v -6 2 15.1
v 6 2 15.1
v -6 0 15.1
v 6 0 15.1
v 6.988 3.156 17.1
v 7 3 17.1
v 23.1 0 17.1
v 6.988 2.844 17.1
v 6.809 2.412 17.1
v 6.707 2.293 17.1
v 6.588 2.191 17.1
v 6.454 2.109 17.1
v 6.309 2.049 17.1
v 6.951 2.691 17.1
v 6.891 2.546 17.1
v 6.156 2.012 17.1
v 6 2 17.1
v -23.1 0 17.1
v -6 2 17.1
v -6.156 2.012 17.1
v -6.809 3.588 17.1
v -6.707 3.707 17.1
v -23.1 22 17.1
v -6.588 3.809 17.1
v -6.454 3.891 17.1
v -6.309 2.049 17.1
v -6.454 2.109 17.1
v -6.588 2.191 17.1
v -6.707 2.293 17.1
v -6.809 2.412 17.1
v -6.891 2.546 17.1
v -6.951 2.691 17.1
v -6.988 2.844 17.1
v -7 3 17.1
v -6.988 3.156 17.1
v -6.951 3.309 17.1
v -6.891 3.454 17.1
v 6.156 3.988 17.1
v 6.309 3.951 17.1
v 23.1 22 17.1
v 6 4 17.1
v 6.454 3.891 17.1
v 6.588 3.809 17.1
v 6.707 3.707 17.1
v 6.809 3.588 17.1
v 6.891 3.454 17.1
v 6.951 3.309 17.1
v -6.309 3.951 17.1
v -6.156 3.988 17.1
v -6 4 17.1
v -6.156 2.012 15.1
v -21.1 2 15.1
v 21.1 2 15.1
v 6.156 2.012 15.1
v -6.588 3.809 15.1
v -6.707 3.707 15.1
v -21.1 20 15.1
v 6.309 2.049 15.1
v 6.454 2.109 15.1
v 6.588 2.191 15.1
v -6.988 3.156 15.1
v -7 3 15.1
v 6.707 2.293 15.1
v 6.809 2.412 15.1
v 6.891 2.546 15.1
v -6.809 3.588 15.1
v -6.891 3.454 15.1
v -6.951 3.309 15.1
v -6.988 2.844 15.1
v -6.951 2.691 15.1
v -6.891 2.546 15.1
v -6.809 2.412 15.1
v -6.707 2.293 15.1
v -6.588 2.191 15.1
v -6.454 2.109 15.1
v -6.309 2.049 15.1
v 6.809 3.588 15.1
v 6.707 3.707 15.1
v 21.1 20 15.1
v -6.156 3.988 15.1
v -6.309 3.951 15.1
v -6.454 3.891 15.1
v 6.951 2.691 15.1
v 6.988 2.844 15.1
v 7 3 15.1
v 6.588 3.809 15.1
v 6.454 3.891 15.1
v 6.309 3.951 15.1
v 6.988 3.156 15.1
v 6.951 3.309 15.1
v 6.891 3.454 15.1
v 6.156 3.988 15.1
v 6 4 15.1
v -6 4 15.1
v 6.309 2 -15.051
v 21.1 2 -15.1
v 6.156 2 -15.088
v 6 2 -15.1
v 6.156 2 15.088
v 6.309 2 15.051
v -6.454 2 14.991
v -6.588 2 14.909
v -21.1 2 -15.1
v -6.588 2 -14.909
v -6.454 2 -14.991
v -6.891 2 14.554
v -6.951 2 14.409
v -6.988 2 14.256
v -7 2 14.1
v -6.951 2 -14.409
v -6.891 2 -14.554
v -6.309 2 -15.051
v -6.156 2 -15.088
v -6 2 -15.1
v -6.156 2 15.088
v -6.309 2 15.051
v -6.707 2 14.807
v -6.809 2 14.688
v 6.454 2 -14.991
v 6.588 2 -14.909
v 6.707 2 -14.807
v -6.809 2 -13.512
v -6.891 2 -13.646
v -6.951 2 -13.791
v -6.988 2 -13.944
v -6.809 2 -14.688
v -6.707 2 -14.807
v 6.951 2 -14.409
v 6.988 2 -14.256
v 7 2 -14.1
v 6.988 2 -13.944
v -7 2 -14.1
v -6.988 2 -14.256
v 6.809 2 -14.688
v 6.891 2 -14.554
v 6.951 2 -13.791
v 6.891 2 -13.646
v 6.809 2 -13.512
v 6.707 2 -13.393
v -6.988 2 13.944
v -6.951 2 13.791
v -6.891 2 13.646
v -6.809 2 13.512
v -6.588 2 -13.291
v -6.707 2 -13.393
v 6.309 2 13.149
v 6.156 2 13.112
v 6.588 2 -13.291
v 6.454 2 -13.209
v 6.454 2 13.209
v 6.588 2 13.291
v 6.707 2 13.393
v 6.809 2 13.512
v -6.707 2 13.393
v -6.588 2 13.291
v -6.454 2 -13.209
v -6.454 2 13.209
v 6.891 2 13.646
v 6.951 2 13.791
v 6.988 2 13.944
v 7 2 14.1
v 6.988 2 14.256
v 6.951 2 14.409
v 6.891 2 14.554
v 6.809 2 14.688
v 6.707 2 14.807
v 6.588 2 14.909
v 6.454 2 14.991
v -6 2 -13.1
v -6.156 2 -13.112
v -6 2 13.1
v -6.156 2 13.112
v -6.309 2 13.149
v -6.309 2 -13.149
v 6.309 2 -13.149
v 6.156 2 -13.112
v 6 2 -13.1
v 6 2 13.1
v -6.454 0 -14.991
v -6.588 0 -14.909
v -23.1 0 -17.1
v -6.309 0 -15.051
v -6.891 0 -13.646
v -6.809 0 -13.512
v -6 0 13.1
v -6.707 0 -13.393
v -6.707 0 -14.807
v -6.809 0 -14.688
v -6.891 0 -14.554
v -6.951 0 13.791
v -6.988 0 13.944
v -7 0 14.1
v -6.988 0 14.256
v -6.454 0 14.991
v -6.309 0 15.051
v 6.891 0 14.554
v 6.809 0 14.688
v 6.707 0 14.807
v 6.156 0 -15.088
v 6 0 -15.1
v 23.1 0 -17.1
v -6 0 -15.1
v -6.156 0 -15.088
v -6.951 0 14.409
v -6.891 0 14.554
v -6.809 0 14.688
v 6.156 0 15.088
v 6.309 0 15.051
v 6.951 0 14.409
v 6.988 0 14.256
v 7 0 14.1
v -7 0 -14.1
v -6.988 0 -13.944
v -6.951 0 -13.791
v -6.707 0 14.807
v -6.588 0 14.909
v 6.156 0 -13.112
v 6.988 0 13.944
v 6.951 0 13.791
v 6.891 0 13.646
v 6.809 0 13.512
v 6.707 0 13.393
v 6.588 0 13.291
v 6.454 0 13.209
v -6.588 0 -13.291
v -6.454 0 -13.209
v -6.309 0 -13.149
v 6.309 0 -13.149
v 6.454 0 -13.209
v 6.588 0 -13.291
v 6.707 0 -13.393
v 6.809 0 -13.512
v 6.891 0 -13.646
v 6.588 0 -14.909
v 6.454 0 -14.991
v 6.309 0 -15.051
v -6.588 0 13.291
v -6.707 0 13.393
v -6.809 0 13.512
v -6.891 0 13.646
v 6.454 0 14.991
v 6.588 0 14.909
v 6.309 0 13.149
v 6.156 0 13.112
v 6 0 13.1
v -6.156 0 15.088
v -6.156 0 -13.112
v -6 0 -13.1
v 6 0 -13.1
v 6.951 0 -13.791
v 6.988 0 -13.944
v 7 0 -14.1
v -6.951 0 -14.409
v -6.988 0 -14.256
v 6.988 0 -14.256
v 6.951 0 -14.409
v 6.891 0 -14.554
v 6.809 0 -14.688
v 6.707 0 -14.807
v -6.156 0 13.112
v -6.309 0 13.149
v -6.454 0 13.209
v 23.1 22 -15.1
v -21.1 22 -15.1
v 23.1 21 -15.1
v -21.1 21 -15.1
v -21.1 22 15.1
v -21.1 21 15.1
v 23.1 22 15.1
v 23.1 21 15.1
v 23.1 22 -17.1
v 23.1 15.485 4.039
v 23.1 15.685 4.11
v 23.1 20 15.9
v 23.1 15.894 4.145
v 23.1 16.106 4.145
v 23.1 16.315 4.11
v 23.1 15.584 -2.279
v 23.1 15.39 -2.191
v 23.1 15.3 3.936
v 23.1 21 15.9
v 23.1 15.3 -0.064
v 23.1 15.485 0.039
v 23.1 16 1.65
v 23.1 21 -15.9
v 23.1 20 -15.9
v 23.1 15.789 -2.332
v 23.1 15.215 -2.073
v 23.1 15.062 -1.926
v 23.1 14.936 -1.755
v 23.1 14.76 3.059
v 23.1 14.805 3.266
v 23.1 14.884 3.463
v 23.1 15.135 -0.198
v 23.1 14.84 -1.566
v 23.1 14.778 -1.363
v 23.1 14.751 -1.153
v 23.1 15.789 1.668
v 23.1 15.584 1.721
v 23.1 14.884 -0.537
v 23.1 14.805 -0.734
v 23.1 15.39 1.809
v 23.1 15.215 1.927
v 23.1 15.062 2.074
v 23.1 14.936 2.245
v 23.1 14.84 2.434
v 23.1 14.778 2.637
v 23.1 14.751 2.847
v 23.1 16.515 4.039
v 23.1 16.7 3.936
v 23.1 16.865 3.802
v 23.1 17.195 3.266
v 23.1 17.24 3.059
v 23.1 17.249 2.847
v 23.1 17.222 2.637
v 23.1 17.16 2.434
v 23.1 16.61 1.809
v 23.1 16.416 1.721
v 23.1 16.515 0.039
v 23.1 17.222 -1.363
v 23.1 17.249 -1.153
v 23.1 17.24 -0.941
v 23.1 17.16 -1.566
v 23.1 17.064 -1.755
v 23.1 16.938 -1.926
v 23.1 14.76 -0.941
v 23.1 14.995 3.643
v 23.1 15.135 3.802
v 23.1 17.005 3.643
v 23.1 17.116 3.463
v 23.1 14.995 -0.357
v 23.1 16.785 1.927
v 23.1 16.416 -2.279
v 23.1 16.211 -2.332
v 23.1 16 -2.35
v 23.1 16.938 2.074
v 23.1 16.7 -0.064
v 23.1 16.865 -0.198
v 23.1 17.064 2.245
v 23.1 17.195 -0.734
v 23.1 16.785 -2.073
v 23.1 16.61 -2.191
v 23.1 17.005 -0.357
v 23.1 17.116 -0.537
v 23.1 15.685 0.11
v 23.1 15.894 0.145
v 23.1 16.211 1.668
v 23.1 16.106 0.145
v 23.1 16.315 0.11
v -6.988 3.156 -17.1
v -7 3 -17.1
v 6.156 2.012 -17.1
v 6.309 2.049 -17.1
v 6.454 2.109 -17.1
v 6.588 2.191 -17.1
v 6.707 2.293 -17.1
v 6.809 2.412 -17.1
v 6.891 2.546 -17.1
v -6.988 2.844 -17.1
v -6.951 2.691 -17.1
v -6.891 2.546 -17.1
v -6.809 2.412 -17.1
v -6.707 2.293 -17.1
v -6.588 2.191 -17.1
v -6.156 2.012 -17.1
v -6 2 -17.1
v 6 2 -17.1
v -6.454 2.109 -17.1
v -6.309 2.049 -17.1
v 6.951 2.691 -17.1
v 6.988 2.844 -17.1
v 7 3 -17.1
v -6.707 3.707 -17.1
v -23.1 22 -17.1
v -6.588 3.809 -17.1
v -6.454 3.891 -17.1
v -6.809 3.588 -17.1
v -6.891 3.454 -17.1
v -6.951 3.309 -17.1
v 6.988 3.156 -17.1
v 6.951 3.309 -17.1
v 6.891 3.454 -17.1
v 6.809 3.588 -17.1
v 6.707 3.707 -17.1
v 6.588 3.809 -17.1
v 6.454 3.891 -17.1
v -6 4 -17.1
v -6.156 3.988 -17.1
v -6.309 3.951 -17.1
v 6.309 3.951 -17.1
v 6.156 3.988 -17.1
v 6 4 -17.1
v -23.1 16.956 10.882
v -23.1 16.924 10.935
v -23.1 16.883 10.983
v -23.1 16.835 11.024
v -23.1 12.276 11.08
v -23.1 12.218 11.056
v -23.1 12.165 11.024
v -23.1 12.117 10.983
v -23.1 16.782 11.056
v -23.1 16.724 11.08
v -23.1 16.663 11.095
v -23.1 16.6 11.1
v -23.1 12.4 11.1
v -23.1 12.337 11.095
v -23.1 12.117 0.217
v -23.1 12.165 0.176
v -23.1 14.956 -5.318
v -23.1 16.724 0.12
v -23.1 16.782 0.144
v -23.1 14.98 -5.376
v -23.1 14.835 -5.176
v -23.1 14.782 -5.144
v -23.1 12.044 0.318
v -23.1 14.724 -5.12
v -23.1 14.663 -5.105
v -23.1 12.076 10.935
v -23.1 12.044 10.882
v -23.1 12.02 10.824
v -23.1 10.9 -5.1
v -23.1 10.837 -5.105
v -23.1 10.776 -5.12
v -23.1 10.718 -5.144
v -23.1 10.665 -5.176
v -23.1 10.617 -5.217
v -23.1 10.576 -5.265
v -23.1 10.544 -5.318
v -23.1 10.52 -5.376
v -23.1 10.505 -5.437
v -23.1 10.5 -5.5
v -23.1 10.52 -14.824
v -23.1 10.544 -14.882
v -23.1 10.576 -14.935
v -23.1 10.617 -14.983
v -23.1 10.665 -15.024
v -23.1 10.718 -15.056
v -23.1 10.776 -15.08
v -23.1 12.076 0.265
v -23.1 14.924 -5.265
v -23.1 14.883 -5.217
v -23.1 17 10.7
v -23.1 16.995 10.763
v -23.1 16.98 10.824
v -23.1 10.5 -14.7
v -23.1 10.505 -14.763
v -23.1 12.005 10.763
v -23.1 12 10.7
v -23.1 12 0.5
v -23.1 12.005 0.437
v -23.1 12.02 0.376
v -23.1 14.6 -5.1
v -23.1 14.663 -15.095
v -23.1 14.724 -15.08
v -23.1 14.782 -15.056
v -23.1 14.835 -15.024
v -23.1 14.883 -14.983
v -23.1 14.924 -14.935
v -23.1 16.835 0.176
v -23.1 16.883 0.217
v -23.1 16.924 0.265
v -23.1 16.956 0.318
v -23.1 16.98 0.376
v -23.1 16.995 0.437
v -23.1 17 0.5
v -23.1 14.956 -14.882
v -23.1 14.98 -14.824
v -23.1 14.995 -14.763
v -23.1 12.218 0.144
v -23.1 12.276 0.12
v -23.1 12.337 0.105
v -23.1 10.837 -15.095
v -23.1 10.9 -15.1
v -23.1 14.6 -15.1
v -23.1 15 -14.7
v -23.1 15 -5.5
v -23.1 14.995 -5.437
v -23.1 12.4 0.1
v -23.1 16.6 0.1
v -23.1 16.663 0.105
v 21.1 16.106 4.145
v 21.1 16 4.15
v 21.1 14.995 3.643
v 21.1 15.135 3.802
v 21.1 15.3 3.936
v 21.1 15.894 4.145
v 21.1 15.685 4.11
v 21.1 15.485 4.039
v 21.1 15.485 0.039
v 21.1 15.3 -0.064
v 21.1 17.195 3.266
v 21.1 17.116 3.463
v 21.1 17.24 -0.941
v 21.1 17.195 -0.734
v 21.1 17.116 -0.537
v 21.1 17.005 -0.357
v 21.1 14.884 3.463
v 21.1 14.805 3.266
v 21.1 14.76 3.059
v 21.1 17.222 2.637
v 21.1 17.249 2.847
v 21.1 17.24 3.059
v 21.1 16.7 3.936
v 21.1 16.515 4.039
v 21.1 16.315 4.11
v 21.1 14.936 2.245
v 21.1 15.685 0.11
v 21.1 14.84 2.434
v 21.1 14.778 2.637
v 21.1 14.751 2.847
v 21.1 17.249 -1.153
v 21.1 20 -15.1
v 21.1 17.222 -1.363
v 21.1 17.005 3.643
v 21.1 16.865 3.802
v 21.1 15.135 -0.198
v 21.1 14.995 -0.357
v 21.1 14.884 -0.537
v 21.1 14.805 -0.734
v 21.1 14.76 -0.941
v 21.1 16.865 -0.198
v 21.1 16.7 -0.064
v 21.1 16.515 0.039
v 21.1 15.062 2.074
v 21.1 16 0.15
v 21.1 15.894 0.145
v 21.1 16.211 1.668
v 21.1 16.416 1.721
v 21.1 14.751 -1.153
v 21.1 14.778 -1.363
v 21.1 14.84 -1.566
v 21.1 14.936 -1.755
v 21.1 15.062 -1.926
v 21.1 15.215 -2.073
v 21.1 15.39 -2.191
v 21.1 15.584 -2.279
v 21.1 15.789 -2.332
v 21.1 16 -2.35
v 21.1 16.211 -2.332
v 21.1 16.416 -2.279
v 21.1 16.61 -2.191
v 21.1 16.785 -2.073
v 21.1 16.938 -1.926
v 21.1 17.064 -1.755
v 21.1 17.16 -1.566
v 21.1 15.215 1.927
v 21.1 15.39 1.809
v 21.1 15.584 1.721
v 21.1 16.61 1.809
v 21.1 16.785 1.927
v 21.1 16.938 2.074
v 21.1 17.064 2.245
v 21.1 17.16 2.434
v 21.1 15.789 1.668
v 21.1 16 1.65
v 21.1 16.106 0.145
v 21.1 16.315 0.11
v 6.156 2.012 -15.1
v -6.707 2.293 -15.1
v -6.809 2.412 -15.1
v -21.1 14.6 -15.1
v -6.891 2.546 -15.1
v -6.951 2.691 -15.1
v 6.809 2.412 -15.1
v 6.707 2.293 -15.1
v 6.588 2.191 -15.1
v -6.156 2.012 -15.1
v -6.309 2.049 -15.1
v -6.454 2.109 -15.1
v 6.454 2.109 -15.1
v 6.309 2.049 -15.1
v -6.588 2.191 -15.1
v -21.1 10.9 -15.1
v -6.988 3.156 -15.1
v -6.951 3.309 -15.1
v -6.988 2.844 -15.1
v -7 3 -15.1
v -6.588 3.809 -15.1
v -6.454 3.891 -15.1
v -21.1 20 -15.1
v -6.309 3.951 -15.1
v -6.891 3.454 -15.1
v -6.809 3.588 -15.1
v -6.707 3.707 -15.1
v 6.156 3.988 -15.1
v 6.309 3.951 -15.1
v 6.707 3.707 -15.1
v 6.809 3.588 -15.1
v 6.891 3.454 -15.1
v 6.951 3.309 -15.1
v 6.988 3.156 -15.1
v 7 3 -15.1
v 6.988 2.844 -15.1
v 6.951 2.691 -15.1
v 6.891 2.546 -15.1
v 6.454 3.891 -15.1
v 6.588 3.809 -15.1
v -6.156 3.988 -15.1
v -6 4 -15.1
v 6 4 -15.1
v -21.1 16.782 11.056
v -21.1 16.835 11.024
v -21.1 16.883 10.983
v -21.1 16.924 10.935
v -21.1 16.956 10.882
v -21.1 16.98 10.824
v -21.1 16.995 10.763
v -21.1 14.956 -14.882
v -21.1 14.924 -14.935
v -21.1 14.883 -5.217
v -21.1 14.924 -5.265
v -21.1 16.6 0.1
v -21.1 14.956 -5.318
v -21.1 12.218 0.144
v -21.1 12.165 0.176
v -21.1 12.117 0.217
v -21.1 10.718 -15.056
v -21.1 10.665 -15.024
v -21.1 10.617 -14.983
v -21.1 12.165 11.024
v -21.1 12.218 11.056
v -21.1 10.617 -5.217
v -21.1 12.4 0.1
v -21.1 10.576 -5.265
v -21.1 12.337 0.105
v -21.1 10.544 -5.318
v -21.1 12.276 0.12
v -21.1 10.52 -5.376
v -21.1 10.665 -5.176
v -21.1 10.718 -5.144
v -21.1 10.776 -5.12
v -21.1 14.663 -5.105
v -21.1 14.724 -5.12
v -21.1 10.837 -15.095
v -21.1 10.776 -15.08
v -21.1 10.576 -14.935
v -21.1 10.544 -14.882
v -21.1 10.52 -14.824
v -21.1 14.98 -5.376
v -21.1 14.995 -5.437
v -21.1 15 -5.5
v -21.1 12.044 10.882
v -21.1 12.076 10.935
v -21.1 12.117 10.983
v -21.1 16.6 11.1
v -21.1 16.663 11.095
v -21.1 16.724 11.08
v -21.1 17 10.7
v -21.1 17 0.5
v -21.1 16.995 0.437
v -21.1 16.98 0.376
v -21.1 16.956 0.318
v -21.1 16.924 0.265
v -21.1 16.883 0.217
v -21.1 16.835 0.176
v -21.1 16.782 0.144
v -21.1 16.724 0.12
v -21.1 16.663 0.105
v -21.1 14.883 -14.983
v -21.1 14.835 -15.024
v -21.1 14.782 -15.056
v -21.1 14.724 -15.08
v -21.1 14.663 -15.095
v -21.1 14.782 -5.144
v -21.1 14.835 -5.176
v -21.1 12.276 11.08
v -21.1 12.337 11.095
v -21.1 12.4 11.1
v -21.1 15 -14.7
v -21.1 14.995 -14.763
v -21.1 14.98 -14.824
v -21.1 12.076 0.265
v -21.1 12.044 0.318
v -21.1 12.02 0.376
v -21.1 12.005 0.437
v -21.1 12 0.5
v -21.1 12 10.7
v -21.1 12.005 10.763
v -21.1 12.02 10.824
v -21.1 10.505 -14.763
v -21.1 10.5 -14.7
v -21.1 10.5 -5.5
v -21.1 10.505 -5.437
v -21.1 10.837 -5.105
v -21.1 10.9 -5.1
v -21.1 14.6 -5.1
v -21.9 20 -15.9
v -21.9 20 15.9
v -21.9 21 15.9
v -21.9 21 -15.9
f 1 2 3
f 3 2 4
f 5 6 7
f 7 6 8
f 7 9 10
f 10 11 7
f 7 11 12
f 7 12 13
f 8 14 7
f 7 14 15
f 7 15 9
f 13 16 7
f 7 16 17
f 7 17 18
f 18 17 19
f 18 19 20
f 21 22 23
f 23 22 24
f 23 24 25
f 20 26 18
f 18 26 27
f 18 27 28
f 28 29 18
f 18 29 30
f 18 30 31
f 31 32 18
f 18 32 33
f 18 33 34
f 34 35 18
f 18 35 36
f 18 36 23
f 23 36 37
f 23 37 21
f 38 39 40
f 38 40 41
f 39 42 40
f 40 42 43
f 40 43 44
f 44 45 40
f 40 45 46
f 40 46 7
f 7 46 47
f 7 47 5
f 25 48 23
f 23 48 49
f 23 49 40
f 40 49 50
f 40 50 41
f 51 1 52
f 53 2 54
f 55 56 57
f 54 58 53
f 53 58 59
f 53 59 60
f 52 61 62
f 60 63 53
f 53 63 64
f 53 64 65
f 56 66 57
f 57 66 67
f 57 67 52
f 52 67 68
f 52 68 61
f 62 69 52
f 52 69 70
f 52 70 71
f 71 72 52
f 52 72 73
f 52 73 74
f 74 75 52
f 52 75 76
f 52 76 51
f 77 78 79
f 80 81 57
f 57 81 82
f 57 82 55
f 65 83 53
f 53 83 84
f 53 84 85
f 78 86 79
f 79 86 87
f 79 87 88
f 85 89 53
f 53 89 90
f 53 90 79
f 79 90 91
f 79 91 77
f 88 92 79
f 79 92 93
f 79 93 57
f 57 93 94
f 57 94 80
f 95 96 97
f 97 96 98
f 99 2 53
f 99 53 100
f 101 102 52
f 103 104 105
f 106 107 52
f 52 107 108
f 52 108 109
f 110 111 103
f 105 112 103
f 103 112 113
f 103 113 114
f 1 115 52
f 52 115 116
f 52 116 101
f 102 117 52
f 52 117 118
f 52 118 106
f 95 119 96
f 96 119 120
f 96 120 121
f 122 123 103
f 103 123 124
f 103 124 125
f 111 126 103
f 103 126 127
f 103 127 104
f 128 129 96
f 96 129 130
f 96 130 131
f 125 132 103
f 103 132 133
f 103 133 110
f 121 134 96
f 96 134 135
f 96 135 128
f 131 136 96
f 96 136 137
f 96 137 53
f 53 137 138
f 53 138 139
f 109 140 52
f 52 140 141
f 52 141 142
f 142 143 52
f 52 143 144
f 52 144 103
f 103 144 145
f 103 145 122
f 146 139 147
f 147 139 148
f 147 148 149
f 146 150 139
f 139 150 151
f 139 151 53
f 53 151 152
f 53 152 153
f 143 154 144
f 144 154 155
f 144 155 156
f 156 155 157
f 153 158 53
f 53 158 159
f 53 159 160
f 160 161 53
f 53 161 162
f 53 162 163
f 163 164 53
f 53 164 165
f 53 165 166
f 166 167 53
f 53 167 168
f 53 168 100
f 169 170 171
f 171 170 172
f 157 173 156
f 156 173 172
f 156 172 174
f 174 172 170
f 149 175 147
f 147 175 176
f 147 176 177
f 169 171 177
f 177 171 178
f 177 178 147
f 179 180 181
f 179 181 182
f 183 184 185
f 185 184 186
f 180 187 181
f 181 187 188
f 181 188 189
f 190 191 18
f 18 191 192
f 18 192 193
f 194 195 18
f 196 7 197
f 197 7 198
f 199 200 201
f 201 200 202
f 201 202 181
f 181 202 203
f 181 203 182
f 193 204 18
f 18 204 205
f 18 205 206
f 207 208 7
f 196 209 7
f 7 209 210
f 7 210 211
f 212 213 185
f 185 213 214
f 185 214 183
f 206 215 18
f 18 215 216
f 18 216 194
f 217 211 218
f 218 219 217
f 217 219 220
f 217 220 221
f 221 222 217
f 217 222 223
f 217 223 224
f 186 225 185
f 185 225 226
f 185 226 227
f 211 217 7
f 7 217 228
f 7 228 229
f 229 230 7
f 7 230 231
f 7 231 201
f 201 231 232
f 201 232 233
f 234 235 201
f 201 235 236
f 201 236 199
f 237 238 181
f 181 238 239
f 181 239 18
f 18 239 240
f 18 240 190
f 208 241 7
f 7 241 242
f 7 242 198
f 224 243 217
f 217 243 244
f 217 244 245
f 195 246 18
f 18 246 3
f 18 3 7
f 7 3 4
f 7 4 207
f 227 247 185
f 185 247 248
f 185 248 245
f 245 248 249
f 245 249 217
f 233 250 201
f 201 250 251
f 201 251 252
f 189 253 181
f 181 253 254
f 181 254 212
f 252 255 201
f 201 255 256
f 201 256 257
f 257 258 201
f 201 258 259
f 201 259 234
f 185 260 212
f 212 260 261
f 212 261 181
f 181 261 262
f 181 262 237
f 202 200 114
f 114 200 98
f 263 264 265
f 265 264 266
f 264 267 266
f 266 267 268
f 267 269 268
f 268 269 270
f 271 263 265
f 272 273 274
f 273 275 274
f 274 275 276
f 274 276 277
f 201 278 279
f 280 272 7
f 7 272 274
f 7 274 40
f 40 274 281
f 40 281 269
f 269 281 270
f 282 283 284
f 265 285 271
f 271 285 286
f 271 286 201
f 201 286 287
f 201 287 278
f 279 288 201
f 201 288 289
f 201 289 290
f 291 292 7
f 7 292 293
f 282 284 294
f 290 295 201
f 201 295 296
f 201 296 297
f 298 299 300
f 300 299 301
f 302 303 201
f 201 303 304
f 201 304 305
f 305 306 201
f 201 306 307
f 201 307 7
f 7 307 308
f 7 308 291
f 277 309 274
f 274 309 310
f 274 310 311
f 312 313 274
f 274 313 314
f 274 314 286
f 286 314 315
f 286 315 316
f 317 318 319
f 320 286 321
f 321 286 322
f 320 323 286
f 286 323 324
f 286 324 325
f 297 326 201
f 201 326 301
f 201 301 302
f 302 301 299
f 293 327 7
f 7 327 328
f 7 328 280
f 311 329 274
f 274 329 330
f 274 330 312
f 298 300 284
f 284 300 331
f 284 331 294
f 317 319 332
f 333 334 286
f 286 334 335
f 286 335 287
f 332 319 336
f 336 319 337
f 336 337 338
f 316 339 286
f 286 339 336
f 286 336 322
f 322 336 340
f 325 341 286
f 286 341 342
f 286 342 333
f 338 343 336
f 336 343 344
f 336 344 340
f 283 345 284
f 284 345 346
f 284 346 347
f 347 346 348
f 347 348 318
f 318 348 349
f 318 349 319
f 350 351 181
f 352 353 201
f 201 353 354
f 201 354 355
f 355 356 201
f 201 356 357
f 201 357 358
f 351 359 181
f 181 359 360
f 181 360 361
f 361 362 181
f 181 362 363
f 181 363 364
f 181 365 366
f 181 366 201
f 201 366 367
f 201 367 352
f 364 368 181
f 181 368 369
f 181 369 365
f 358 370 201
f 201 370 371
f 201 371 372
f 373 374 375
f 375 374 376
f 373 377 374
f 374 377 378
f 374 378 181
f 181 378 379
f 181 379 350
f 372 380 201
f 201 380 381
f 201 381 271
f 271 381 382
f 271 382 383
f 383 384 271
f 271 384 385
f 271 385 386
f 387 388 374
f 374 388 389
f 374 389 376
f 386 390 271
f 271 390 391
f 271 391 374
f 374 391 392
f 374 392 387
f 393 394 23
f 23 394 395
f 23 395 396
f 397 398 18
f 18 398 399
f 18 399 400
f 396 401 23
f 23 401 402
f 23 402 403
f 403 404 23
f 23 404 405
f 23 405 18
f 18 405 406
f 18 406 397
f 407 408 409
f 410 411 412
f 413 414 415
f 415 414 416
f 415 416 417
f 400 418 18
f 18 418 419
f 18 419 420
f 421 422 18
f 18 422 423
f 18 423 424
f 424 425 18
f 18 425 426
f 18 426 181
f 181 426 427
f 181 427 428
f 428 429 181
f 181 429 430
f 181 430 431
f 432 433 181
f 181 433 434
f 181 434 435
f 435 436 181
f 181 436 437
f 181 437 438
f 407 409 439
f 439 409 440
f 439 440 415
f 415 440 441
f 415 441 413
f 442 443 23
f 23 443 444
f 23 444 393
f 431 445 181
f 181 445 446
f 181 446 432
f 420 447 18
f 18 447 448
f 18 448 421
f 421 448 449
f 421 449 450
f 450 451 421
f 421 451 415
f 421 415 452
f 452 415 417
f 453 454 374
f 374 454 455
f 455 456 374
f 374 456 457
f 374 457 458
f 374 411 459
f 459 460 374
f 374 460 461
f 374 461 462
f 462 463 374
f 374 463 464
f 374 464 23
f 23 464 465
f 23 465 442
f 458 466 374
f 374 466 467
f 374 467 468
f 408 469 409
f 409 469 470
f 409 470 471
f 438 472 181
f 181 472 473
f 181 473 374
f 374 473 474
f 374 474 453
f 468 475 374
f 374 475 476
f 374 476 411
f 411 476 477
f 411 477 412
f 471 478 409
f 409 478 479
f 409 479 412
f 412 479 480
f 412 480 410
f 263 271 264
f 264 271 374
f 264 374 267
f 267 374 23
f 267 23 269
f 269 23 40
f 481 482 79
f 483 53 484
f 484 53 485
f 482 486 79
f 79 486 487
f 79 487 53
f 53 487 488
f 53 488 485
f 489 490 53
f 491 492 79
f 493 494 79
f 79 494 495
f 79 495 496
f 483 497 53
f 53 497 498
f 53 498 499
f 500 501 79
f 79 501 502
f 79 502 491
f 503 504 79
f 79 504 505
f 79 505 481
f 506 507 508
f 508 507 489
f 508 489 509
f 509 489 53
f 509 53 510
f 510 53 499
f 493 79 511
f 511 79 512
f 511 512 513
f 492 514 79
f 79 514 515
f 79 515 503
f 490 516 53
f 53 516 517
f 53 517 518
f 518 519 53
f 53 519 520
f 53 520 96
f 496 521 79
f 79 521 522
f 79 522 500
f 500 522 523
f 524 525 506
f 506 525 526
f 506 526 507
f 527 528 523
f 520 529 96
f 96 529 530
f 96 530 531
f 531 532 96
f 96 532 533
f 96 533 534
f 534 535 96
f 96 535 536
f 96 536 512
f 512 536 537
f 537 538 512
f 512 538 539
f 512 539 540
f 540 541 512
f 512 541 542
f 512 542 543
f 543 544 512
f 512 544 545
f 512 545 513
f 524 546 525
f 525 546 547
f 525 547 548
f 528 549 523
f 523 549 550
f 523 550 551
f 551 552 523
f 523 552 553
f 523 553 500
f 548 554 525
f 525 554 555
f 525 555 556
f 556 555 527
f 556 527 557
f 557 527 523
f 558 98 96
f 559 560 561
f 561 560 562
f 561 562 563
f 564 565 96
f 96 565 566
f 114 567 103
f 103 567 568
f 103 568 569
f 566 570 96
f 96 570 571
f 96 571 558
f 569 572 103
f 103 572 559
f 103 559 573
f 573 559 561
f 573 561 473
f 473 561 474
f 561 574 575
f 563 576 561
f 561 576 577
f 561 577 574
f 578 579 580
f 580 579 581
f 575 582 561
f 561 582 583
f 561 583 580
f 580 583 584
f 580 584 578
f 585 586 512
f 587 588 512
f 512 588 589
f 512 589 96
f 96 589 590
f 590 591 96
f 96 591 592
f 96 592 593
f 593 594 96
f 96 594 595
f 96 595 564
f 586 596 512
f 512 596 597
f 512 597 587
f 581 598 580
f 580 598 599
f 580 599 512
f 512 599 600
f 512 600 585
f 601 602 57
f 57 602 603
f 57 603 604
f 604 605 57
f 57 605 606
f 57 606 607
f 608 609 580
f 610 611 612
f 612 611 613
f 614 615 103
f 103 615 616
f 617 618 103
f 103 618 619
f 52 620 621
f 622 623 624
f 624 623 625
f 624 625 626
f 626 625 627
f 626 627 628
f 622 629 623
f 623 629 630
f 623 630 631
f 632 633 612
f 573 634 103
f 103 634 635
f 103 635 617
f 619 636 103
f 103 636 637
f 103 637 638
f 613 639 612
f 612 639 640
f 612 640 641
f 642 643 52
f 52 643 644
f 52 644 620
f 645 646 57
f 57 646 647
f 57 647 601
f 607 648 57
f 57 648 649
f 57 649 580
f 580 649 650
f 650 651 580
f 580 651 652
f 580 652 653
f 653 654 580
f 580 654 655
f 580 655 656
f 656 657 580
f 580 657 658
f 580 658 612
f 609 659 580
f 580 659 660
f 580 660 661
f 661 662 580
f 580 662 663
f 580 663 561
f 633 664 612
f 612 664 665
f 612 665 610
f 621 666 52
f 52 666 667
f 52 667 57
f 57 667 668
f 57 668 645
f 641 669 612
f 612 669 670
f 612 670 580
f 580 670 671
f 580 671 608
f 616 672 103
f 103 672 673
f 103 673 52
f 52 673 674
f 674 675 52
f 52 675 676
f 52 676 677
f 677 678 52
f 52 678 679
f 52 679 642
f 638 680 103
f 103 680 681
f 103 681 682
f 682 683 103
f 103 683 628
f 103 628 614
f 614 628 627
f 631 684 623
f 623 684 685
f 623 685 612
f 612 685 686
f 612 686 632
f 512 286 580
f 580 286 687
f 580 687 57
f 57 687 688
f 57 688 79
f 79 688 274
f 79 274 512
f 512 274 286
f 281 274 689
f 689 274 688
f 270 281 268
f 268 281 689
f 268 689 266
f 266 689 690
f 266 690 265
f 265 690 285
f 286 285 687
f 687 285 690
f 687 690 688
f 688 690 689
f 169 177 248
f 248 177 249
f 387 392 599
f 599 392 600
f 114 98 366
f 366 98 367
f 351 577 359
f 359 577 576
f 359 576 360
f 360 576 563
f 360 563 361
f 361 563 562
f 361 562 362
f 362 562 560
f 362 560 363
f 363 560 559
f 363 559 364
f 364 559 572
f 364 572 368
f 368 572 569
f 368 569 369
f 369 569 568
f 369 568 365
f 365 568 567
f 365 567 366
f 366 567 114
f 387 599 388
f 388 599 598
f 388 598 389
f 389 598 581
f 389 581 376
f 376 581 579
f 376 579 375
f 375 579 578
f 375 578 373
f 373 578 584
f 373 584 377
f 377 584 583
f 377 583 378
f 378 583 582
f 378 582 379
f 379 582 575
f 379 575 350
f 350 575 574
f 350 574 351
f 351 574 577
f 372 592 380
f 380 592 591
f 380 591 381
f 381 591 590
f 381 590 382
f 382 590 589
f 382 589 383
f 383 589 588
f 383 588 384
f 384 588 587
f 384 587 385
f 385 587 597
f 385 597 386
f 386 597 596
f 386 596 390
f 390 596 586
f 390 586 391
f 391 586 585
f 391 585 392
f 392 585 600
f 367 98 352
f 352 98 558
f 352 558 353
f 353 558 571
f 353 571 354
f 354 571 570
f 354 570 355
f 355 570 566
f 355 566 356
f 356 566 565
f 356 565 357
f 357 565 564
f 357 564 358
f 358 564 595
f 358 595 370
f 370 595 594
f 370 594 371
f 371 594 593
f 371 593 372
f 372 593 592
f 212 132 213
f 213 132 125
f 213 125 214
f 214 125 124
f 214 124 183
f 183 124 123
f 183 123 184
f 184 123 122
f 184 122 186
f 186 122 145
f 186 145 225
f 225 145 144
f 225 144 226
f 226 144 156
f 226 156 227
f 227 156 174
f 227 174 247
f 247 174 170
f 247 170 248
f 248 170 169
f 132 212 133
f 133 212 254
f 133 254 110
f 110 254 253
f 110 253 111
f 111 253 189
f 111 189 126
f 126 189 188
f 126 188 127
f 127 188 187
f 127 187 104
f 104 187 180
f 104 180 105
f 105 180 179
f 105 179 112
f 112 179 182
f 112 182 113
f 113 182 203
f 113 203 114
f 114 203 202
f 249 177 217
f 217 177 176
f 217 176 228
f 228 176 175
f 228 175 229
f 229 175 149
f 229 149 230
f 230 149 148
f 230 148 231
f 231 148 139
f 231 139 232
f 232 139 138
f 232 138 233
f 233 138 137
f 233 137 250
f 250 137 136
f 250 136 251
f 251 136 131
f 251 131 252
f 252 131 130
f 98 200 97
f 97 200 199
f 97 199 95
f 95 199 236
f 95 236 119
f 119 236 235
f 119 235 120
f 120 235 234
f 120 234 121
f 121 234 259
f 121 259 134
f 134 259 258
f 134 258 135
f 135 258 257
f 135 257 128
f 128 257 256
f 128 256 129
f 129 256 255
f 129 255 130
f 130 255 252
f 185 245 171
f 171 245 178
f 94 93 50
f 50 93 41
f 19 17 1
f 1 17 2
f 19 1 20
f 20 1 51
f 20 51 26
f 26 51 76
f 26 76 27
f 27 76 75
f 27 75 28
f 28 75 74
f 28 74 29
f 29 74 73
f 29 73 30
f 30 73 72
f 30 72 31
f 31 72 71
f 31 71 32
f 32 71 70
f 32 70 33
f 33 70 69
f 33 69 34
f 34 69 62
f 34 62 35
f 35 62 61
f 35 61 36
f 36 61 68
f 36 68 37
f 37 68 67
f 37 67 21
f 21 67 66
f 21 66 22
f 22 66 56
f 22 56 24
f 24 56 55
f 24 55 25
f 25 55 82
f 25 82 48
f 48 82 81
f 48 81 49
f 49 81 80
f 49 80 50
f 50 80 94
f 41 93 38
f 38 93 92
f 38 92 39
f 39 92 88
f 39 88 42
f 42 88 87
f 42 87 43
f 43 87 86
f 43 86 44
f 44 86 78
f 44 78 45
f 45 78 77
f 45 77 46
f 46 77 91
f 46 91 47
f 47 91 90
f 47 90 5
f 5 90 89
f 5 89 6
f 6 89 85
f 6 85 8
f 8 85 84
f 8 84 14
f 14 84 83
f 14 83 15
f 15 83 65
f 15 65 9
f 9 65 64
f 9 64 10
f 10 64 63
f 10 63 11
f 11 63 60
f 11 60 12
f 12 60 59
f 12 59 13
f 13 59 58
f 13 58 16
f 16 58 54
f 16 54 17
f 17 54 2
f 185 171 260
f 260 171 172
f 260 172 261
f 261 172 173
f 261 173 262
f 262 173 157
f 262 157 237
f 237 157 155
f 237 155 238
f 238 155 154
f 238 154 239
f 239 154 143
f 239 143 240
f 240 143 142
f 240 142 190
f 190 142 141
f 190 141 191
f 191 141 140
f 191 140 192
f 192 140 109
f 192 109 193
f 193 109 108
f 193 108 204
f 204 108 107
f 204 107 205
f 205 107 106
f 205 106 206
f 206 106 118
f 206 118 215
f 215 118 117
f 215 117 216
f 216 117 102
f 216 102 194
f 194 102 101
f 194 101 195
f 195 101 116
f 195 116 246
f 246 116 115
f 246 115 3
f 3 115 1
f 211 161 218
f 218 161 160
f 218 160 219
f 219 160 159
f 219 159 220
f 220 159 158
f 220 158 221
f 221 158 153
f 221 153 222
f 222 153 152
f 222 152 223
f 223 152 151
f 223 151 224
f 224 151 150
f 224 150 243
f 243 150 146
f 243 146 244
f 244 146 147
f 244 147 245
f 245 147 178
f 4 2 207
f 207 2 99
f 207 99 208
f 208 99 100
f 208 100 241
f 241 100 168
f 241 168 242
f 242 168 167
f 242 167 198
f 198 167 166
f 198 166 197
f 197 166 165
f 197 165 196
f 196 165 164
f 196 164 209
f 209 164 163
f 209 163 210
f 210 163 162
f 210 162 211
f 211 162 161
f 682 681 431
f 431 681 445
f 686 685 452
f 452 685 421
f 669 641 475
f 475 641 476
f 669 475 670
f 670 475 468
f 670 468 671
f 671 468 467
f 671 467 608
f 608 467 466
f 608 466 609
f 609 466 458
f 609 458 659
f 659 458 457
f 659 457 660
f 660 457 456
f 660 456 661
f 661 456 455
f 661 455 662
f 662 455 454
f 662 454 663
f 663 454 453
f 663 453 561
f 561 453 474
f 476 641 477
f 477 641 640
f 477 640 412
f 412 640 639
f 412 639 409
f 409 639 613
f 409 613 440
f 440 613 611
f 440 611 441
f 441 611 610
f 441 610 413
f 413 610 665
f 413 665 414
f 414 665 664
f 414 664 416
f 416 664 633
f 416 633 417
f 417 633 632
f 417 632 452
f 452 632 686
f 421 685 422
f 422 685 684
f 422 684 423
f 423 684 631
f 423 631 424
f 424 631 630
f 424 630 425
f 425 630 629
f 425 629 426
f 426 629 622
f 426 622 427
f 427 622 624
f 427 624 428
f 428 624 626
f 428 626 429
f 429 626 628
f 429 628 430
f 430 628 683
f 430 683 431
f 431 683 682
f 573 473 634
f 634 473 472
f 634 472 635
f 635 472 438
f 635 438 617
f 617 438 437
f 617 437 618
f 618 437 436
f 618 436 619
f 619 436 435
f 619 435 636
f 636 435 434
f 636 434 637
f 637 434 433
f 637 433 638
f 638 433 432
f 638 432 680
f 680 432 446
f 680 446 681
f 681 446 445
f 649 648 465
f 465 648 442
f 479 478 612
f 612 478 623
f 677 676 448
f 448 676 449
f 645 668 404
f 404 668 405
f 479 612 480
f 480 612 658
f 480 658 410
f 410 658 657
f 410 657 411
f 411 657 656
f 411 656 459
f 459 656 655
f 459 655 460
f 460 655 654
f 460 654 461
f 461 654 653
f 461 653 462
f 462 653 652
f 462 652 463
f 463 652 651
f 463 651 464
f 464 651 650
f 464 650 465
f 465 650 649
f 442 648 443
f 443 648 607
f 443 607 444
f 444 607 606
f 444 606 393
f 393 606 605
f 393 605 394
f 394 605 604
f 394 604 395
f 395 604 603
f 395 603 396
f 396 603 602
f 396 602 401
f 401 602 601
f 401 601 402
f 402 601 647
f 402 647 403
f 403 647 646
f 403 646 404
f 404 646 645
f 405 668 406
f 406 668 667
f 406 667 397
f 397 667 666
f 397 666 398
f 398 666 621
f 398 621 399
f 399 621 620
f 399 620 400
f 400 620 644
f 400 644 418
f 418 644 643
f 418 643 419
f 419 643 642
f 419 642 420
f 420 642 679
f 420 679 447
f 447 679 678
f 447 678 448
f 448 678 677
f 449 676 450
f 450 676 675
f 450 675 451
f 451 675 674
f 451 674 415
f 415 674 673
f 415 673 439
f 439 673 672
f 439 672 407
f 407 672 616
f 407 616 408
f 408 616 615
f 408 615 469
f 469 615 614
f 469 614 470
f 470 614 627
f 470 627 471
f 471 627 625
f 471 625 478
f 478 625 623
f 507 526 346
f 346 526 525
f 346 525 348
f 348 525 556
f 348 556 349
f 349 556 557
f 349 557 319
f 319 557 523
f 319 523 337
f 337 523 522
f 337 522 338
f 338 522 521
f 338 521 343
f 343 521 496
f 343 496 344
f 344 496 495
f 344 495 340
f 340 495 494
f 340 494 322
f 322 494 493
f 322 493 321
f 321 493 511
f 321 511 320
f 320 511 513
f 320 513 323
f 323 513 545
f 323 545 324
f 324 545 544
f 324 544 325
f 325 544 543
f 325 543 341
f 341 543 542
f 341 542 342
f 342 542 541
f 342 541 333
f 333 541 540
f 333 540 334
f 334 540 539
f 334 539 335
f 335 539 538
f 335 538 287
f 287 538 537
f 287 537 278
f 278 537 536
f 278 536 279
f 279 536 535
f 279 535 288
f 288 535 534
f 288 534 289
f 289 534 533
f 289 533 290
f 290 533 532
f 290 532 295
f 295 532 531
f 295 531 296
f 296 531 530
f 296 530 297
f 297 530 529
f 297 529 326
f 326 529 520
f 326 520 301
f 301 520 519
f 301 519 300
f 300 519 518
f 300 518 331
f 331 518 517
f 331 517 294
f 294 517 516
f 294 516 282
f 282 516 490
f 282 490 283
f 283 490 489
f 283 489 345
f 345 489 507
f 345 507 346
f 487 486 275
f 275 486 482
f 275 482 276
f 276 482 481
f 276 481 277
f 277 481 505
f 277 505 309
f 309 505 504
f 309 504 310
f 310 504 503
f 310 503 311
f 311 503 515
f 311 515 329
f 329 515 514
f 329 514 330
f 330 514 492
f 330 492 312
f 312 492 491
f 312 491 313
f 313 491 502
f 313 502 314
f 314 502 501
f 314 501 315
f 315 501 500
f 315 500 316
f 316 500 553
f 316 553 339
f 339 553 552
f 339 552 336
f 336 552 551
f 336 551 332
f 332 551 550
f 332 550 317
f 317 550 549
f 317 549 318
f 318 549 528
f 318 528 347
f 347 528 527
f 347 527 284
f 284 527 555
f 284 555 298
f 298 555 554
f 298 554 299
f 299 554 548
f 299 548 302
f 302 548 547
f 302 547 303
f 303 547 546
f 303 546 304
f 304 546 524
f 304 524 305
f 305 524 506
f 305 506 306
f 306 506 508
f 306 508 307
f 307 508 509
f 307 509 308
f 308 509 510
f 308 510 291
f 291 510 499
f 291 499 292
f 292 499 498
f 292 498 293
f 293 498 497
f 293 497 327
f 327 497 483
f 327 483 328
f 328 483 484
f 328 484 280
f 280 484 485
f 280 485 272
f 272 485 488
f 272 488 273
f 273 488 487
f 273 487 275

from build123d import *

# Parameters (mm, degrees)
SKETCH_1_W             = 46.2
SKETCH_1_H             = 34.2
EXTRUDE_1_DEPTH        = 22
SHELL_1_T              = -2
CUT_EXTRUDE_3_REACH    = 55.952
SKETCH_4_W             = 30.2
SKETCH_4_H             = 2
SKETCH_5_W             = 31.8
SKETCH_5_H             = 1
CUT_EXTRUDE_4_DEPTH    = 45
CUT_EXTRUDE_6_REACH    = 38.194
SKETCH_8_W             = 14
SKETCH_8_H             = 2
CUT_EXTRUDE_7_REACH    = 48.768
SKETCH_9_W             = 14
SKETCH_9_H             = 2
FILLET_3_R             = 1
FILLET_4_R             = 1
FILLET_3_OF_MIRROR_1_R = 1
FILLET_4_OF_MIRROR_1_R = 1
CUT_EXTRUDE_8_REACH    = 55.952
SKETCH_10_W            = 10
SKETCH_10_H            = 4.5
FILLET_6_R             = 0.4
CUT_EXTRUDE_9_REACH    = 55.952
SKETCH_11_W            = 11
SKETCH_11_H            = 5
FILLET_7_R             = 0.4
CUT_EXTRUDE_10_REACH   = 55.952
SKETCH_12_R            = 1.25


# Some blends are built 0.0001 mm under size
with BuildPart() as part:
    # 草图1 → 凸台-拉伸1 (new body)
    with BuildSketch(Plane(origin=(0, 0, 0), x_dir=(1, 0, 0), z_dir=(0, 1, 0))):
        Rectangle(SKETCH_1_W, SKETCH_1_H)
    extrude(amount=EXTRUDE_1_DEPTH)

    # 抽壳1
    shell_1_openings = [part.faces().sort_by_distance(p)[0] for p in [
        (0, 22, 0),
    ]]
    offset(amount=SHELL_1_T, openings=shell_1_openings, kind=Kind.INTERSECTION)

    # 草图4 → 切除-拉伸3 (cut, up to next)
    with BuildSketch(Plane(origin=(23.1, 0, 0), x_dir=(0, 0, -1), z_dir=(1, 0, 0)), mode=Mode.PRIVATE) as cut_extrude_3_sk1:
        with Locations((0, 21)):
            Rectangle(SKETCH_4_W, SKETCH_4_H)
    cut_extrude_3_tool1 = extrude(cut_extrude_3_sk1.sketch, amount=-CUT_EXTRUDE_3_REACH, mode=Mode.PRIVATE) & part.part
    add(cut_extrude_3_tool1.solids().sort_by_distance((23.1, 21, 0))[0], mode=Mode.SUBTRACT)

    # 草图5 → 切除-拉伸4 (cut)
    with BuildSketch(Plane(origin=(23.1, 0, 0), x_dir=(0, 0, -1), z_dir=(1, 0, 0))):
        with Locations((0, 20.5)):
            Rectangle(SKETCH_5_W, SKETCH_5_H)
    extrude(amount=-CUT_EXTRUDE_4_DEPTH, mode=Mode.SUBTRACT)

    # 草图8 → 切除-拉伸6 (cut, up to next)
    with BuildSketch(Plane.XZ, mode=Mode.PRIVATE) as cut_extrude_6_sk1:
        with Locations((0, -14.1)):
            Rectangle(SKETCH_8_W, SKETCH_8_H)
    cut_extrude_6_tool1 = extrude(cut_extrude_6_sk1.sketch, amount=-CUT_EXTRUDE_6_REACH, mode=Mode.PRIVATE) & part.part
    cut_extrude_6 = cut_extrude_6_tool1.solids().sort_by_distance((0, 0, -14.1))[0]
    add(cut_extrude_6, mode=Mode.SUBTRACT)

    # 草图9 → 切除-拉伸7 (cut, up to next)
    with BuildSketch(Plane(origin=(0, 0, -17.1), x_dir=(-1, 0, 0), z_dir=(0, 0, -1)), mode=Mode.PRIVATE) as cut_extrude_7_sk1:
        with Locations((0, 3)):
            Rectangle(SKETCH_9_W, SKETCH_9_H)
    cut_extrude_7_tool1 = extrude(cut_extrude_7_sk1.sketch, amount=-CUT_EXTRUDE_7_REACH, mode=Mode.PRIVATE) & part.part
    cut_extrude_7 = cut_extrude_7_tool1.solids().sort_by_distance((0, 3, -17.1))[0]
    add(cut_extrude_7, mode=Mode.SUBTRACT)

    # 圆角3
    # the kernel refuses this fillet: 1 mm, written as the material it adds along each edge
    with BuildSketch(Plane(origin=(-7, 4, -17.1), x_dir=(0, -1, 0), z_dir=(0, 0, 1)), Plane(origin=(-7, 2, -17.1), x_dir=(1, 0, 0), z_dir=(0, 0, 1)), Plane(origin=(7, 2, -17.1), x_dir=(0, 1, 0), z_dir=(0, 0, 1))) as fillet_3_piece_1:
        with BuildLine():
            CenterArc((FILLET_3_R, FILLET_3_R), FILLET_3_R, 180, 90)
            Line((0, FILLET_3_R), (0, 0))
            Line((0, 0), (FILLET_3_R, 0))
        make_face()
    extrude(amount=2)
    with BuildSketch(Plane(origin=(7, 4, -17.1), x_dir=(0, -1, 0), z_dir=(0, 0, 1))) as fillet_3_piece_2:
        with BuildLine():
            CenterArc((FILLET_3_R, -FILLET_3_R), FILLET_3_R, 90, 90)
            Line((0, -FILLET_3_R), (0, 0))
            Line((0, 0), (FILLET_3_R, 0))
        make_face()
    extrude(amount=2)

    # 圆角4
    fillet_4_edges = [part.edges().sort_by_distance(p)[0] for p in [
        (-7, 1, -15.1),
        (-7, 1, -13.1),
        (7, 1, -15.1),
        (7, 1, -13.1),
    ]]
    fillet(fillet_4_edges, radius=FILLET_4_R - 0.0001)  # a hair under: the kernel refuses the full size

    # 镜向1: 切除-拉伸6, 切除-拉伸7 across plane
    add(cut_extrude_6.mirror(Plane.XY), mode=Mode.SUBTRACT)
    add(cut_extrude_7.mirror(Plane.XY), mode=Mode.SUBTRACT)

    # 圆角3 of 镜向1
    # the kernel refuses this fillet: 1 mm, written as the material it adds along each edge
    with BuildSketch(Plane(origin=(-7, 4, 17.1), x_dir=(1, 0, 0), z_dir=(0, 0, -1)), Plane(origin=(-7, 2, 17.1), x_dir=(0, 1, 0), z_dir=(0, 0, -1)), Plane(origin=(7, 2, 17.1), x_dir=(-1, 0, 0), z_dir=(0, 0, -1))) as fillet_3_of_mirror_1_piece_1:
        with BuildLine():
            CenterArc((FILLET_3_OF_MIRROR_1_R, FILLET_3_OF_MIRROR_1_R), FILLET_3_OF_MIRROR_1_R, 180, 90)
            Line((0, FILLET_3_OF_MIRROR_1_R), (0, 0))
            Line((0, 0), (FILLET_3_OF_MIRROR_1_R, 0))
        make_face()
    extrude(amount=2)
    with BuildSketch(Plane(origin=(7, 4, 17.1), x_dir=(-1, 0, 0), z_dir=(0, 0, -1))) as fillet_3_of_mirror_1_piece_2:
        with BuildLine():
            CenterArc((FILLET_3_OF_MIRROR_1_R, -FILLET_3_OF_MIRROR_1_R), FILLET_3_OF_MIRROR_1_R, 90, 90)
            Line((0, -FILLET_3_OF_MIRROR_1_R), (0, 0))
            Line((0, 0), (FILLET_3_OF_MIRROR_1_R, 0))
        make_face()
    extrude(amount=2)

    # 圆角4 of 镜向1
    fillet_4_of_mirror_1_edges = [part.edges().sort_by_distance(p)[0] for p in [
        (-7, 1, 15.1),
        (-7, 1, 13.1),
        (7, 1, 15.1),
        (7, 1, 13.1),
    ]]
    fillet(fillet_4_of_mirror_1_edges, radius=FILLET_4_OF_MIRROR_1_R - 0.0001)  # a hair under: the kernel refuses the full size

    # 草图10 → 切除-拉伸8 (cut, up to next)
    with BuildSketch(Plane.ZY.offset(23.1), mode=Mode.PRIVATE) as cut_extrude_8_sk1:
        with Locations((-10.1, 12.75)):
            Rectangle(SKETCH_10_W, SKETCH_10_H)
    cut_extrude_8_tool1 = extrude(cut_extrude_8_sk1.sketch, amount=-CUT_EXTRUDE_8_REACH, mode=Mode.PRIVATE) & part.part
    add(cut_extrude_8_tool1.solids().sort_by_distance((-23.1, 12.75, -10.1))[0], mode=Mode.SUBTRACT)

    # 圆角6
    fillet_6_edges = [part.edges().sort_by_distance(p)[0] for p in [
        (-22.1, 10.5, -5.1),
        (-22.1, 15, -5.1),
        (-22.1, 15, -15.1),
        (-22.1, 10.5, -15.1),
    ]]
    fillet(fillet_6_edges, radius=FILLET_6_R)

    # 草图11 → 切除-拉伸9 (cut, up to next)
    with BuildSketch(Plane.ZY.offset(23.1), mode=Mode.PRIVATE) as cut_extrude_9_sk1:
        with Locations((5.6, 14.5)):
            Rectangle(SKETCH_11_W, SKETCH_11_H)
    cut_extrude_9_tool1 = extrude(cut_extrude_9_sk1.sketch, amount=-CUT_EXTRUDE_9_REACH, mode=Mode.PRIVATE) & part.part
    add(cut_extrude_9_tool1.solids().sort_by_distance((-23.1, 14.5, 5.6))[0], mode=Mode.SUBTRACT)

    # 圆角7
    fillet_7_edges = [part.edges().sort_by_distance(p)[0] for p in [
        (-22.1, 17, 0.1),
        (-22.1, 12, 0.1),
        (-22.1, 12, 11.1),
        (-22.1, 17, 11.1),
    ]]
    fillet(fillet_7_edges, radius=FILLET_7_R)

    # 草图12 → 切除-拉伸10 (cut, up to next)
    with BuildSketch(Plane(origin=(23.1, 0, 0), x_dir=(0, 0, -1), z_dir=(1, 0, 0)), mode=Mode.PRIVATE) as cut_extrude_10_sk1:
        with Locations((-2.9, 16)):
            Circle(SKETCH_12_R)
    cut_extrude_10_tool1 = extrude(cut_extrude_10_sk1.sketch, amount=-CUT_EXTRUDE_10_REACH, mode=Mode.PRIVATE) & part.part
    # 草图12 → 切除-拉伸10 (cut, up to next)
    with BuildSketch(Plane(origin=(23.1, 0, 0), x_dir=(0, 0, -1), z_dir=(1, 0, 0)), mode=Mode.PRIVATE) as cut_extrude_10_sk2:
        with Locations((1.1, 16)):
            Circle(SKETCH_12_R)
    cut_extrude_10_tool2 = extrude(cut_extrude_10_sk2.sketch, amount=-CUT_EXTRUDE_10_REACH, mode=Mode.PRIVATE) & part.part
    add(cut_extrude_10_tool1.solids().sort_by_distance((23.1, 16, 2.9))[0], mode=Mode.SUBTRACT)
    add(cut_extrude_10_tool2.solids().sort_by_distance((23.1, 16, -1.1))[0], mode=Mode.SUBTRACT)


solid = part.part
